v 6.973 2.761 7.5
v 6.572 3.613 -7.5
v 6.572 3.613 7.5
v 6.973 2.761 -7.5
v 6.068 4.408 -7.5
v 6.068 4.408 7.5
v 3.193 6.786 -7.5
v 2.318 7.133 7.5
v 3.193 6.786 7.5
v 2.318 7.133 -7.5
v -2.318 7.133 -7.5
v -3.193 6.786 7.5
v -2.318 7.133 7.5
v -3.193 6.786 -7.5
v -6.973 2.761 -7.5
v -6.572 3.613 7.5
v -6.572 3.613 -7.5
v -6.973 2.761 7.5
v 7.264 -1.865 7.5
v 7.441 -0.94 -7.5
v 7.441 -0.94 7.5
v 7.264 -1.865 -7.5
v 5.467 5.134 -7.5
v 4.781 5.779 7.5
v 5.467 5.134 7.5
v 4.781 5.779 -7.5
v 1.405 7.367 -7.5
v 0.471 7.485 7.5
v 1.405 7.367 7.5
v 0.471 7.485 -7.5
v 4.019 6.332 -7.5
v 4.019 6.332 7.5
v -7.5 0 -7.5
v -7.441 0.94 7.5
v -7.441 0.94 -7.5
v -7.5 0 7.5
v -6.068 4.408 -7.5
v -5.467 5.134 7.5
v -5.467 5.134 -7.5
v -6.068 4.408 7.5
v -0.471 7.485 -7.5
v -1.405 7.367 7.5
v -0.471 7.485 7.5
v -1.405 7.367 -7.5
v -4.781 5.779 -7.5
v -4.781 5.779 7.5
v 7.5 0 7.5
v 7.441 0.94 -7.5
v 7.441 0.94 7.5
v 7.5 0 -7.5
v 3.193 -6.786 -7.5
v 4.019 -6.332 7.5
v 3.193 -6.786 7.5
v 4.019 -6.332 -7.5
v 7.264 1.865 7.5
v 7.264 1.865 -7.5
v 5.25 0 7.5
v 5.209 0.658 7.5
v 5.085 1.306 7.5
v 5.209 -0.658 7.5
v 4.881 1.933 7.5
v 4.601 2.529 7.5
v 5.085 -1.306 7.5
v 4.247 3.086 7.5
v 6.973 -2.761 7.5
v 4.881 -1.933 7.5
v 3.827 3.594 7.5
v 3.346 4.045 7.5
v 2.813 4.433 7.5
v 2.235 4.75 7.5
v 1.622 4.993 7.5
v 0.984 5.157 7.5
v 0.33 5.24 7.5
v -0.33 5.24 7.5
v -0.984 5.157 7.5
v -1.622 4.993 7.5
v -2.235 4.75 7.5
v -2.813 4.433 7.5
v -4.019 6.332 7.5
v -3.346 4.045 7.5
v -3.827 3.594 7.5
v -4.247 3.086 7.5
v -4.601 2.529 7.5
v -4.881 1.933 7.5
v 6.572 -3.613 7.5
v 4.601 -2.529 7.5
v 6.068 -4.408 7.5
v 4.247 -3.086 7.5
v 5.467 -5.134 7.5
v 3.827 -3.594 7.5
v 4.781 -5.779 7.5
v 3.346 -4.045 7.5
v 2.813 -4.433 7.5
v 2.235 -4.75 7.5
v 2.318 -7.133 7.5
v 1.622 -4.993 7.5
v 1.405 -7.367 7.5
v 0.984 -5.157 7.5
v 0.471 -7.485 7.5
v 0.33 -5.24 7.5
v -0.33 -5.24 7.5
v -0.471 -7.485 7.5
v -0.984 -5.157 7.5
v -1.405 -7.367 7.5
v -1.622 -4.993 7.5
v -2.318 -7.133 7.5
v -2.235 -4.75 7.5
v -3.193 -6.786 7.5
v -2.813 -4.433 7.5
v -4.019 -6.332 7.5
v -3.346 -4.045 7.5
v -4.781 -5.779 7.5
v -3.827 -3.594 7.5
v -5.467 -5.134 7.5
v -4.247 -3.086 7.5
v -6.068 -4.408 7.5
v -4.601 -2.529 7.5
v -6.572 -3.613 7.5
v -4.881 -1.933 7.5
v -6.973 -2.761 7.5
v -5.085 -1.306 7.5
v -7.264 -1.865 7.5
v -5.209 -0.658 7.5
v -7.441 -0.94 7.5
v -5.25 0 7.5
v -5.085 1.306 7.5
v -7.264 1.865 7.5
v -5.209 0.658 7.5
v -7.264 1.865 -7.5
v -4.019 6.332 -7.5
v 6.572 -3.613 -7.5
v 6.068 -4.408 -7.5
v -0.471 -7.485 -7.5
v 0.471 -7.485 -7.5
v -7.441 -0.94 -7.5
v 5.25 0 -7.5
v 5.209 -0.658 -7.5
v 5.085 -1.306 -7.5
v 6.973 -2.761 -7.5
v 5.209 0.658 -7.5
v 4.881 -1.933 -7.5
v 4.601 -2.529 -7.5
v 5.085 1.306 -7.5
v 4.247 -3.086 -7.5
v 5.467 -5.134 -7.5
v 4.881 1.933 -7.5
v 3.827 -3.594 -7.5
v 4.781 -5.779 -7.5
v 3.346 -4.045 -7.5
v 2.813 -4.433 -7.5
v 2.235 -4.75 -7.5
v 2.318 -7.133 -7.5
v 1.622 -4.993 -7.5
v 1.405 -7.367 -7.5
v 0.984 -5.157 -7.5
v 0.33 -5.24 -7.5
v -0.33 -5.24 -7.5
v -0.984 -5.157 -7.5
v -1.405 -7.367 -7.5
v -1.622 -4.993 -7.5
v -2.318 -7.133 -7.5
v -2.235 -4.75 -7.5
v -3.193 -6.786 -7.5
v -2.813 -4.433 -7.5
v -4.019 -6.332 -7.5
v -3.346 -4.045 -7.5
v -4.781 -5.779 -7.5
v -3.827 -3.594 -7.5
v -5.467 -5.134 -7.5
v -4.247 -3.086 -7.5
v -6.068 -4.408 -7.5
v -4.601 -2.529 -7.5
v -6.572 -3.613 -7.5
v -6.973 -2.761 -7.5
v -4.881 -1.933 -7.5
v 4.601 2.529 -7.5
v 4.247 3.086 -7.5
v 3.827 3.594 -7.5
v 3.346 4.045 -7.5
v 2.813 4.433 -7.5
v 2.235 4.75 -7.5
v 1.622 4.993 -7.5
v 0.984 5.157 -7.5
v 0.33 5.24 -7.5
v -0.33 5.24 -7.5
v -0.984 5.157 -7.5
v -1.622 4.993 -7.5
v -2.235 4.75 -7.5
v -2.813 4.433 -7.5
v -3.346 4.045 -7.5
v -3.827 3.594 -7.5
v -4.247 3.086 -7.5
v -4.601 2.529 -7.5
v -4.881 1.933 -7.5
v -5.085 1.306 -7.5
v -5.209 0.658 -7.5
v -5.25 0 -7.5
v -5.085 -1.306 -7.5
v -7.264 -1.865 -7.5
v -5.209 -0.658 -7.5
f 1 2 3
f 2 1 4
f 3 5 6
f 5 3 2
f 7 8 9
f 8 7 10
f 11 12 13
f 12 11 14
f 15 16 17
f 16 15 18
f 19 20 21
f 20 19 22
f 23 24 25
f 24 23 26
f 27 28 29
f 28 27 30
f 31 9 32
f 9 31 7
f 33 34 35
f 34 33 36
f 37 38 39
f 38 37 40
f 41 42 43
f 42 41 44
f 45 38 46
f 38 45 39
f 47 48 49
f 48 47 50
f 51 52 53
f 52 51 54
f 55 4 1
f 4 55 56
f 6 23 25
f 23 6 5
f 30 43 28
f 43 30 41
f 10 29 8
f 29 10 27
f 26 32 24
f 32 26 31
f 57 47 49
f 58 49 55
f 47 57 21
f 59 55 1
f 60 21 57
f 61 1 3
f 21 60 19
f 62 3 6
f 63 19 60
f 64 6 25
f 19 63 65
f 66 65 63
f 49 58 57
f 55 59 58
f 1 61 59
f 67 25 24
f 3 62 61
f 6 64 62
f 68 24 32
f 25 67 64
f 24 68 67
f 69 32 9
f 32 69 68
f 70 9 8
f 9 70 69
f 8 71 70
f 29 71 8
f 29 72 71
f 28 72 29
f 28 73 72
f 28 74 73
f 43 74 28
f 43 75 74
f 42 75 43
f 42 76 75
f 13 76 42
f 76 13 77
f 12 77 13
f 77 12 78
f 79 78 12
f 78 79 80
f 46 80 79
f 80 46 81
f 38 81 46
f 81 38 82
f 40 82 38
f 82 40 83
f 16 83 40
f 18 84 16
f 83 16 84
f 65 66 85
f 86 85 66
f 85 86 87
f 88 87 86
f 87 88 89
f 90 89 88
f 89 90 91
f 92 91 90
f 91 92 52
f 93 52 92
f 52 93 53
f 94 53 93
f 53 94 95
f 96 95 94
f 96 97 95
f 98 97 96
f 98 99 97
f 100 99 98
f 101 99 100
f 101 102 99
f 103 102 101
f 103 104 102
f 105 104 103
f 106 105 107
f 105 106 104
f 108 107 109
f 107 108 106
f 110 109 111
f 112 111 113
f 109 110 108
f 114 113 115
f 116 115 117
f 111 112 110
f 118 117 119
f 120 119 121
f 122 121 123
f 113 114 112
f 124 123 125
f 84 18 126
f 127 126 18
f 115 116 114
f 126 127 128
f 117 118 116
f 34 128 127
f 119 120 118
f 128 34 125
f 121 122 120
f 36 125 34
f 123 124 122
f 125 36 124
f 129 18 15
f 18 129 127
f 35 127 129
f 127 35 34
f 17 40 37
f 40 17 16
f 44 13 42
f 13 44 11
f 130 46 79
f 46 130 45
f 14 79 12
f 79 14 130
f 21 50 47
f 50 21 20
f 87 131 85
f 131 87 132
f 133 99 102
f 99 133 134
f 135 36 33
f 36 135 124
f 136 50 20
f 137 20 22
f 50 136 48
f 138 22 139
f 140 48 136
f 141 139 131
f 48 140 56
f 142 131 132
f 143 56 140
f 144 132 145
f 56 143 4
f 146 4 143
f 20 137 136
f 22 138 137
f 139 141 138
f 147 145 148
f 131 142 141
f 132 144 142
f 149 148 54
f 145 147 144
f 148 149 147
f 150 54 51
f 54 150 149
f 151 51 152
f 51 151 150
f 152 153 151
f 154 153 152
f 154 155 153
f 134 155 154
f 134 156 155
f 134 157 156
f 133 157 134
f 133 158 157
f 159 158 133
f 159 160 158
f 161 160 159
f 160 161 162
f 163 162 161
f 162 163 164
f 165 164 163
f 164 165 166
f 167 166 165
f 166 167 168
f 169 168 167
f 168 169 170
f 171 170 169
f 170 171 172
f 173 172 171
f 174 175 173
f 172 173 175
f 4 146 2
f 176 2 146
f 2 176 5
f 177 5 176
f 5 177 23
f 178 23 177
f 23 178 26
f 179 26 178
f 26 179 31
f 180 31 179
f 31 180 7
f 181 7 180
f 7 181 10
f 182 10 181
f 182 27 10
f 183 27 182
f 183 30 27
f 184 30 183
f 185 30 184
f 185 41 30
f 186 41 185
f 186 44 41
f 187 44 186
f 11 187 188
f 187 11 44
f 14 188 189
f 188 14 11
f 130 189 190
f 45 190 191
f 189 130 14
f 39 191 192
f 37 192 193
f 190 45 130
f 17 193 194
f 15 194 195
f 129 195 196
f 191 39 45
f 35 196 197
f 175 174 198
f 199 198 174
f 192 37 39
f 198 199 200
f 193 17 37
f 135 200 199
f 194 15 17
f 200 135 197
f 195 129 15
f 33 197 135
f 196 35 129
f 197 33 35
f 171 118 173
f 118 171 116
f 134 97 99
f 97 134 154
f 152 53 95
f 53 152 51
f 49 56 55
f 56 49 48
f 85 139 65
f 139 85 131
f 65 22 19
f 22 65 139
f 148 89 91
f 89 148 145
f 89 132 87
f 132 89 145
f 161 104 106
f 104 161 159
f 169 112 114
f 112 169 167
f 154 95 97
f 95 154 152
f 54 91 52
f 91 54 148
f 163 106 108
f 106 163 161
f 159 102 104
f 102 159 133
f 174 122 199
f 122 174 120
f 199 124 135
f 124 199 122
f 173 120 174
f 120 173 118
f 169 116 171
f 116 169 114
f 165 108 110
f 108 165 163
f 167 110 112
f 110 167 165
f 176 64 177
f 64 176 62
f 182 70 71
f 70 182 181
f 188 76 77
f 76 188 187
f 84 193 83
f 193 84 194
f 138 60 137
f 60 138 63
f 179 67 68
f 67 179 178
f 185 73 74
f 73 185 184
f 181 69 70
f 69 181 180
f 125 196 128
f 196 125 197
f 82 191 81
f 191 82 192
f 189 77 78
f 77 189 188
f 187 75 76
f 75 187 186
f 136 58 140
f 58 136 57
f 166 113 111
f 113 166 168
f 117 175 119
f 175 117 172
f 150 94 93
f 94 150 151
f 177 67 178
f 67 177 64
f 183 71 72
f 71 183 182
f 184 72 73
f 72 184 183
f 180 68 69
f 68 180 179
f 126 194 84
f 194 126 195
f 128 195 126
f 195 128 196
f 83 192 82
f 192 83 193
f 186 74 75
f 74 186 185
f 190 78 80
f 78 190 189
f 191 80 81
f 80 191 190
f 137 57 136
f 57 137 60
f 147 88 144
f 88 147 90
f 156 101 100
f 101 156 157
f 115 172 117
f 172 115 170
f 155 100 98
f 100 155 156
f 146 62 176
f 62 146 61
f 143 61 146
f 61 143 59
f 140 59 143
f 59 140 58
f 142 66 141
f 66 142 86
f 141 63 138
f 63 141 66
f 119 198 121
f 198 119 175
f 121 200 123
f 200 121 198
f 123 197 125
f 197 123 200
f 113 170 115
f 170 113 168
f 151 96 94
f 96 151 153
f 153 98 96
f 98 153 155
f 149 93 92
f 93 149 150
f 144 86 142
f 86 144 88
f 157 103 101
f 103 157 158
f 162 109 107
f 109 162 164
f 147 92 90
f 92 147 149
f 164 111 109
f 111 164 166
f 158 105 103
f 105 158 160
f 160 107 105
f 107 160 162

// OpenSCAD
$fn = 50;


difference() {
	union() {
		translate(v = [0, 0, -7.5000000000]) {
			cylinder(h = 15, r = 7.5000000000);
		}
	}
	union() {
		translate(v = [0, 0, -100.0000000000]) {
			cylinder(h = 200, r = 5.2500000000);
		}
	}
}
